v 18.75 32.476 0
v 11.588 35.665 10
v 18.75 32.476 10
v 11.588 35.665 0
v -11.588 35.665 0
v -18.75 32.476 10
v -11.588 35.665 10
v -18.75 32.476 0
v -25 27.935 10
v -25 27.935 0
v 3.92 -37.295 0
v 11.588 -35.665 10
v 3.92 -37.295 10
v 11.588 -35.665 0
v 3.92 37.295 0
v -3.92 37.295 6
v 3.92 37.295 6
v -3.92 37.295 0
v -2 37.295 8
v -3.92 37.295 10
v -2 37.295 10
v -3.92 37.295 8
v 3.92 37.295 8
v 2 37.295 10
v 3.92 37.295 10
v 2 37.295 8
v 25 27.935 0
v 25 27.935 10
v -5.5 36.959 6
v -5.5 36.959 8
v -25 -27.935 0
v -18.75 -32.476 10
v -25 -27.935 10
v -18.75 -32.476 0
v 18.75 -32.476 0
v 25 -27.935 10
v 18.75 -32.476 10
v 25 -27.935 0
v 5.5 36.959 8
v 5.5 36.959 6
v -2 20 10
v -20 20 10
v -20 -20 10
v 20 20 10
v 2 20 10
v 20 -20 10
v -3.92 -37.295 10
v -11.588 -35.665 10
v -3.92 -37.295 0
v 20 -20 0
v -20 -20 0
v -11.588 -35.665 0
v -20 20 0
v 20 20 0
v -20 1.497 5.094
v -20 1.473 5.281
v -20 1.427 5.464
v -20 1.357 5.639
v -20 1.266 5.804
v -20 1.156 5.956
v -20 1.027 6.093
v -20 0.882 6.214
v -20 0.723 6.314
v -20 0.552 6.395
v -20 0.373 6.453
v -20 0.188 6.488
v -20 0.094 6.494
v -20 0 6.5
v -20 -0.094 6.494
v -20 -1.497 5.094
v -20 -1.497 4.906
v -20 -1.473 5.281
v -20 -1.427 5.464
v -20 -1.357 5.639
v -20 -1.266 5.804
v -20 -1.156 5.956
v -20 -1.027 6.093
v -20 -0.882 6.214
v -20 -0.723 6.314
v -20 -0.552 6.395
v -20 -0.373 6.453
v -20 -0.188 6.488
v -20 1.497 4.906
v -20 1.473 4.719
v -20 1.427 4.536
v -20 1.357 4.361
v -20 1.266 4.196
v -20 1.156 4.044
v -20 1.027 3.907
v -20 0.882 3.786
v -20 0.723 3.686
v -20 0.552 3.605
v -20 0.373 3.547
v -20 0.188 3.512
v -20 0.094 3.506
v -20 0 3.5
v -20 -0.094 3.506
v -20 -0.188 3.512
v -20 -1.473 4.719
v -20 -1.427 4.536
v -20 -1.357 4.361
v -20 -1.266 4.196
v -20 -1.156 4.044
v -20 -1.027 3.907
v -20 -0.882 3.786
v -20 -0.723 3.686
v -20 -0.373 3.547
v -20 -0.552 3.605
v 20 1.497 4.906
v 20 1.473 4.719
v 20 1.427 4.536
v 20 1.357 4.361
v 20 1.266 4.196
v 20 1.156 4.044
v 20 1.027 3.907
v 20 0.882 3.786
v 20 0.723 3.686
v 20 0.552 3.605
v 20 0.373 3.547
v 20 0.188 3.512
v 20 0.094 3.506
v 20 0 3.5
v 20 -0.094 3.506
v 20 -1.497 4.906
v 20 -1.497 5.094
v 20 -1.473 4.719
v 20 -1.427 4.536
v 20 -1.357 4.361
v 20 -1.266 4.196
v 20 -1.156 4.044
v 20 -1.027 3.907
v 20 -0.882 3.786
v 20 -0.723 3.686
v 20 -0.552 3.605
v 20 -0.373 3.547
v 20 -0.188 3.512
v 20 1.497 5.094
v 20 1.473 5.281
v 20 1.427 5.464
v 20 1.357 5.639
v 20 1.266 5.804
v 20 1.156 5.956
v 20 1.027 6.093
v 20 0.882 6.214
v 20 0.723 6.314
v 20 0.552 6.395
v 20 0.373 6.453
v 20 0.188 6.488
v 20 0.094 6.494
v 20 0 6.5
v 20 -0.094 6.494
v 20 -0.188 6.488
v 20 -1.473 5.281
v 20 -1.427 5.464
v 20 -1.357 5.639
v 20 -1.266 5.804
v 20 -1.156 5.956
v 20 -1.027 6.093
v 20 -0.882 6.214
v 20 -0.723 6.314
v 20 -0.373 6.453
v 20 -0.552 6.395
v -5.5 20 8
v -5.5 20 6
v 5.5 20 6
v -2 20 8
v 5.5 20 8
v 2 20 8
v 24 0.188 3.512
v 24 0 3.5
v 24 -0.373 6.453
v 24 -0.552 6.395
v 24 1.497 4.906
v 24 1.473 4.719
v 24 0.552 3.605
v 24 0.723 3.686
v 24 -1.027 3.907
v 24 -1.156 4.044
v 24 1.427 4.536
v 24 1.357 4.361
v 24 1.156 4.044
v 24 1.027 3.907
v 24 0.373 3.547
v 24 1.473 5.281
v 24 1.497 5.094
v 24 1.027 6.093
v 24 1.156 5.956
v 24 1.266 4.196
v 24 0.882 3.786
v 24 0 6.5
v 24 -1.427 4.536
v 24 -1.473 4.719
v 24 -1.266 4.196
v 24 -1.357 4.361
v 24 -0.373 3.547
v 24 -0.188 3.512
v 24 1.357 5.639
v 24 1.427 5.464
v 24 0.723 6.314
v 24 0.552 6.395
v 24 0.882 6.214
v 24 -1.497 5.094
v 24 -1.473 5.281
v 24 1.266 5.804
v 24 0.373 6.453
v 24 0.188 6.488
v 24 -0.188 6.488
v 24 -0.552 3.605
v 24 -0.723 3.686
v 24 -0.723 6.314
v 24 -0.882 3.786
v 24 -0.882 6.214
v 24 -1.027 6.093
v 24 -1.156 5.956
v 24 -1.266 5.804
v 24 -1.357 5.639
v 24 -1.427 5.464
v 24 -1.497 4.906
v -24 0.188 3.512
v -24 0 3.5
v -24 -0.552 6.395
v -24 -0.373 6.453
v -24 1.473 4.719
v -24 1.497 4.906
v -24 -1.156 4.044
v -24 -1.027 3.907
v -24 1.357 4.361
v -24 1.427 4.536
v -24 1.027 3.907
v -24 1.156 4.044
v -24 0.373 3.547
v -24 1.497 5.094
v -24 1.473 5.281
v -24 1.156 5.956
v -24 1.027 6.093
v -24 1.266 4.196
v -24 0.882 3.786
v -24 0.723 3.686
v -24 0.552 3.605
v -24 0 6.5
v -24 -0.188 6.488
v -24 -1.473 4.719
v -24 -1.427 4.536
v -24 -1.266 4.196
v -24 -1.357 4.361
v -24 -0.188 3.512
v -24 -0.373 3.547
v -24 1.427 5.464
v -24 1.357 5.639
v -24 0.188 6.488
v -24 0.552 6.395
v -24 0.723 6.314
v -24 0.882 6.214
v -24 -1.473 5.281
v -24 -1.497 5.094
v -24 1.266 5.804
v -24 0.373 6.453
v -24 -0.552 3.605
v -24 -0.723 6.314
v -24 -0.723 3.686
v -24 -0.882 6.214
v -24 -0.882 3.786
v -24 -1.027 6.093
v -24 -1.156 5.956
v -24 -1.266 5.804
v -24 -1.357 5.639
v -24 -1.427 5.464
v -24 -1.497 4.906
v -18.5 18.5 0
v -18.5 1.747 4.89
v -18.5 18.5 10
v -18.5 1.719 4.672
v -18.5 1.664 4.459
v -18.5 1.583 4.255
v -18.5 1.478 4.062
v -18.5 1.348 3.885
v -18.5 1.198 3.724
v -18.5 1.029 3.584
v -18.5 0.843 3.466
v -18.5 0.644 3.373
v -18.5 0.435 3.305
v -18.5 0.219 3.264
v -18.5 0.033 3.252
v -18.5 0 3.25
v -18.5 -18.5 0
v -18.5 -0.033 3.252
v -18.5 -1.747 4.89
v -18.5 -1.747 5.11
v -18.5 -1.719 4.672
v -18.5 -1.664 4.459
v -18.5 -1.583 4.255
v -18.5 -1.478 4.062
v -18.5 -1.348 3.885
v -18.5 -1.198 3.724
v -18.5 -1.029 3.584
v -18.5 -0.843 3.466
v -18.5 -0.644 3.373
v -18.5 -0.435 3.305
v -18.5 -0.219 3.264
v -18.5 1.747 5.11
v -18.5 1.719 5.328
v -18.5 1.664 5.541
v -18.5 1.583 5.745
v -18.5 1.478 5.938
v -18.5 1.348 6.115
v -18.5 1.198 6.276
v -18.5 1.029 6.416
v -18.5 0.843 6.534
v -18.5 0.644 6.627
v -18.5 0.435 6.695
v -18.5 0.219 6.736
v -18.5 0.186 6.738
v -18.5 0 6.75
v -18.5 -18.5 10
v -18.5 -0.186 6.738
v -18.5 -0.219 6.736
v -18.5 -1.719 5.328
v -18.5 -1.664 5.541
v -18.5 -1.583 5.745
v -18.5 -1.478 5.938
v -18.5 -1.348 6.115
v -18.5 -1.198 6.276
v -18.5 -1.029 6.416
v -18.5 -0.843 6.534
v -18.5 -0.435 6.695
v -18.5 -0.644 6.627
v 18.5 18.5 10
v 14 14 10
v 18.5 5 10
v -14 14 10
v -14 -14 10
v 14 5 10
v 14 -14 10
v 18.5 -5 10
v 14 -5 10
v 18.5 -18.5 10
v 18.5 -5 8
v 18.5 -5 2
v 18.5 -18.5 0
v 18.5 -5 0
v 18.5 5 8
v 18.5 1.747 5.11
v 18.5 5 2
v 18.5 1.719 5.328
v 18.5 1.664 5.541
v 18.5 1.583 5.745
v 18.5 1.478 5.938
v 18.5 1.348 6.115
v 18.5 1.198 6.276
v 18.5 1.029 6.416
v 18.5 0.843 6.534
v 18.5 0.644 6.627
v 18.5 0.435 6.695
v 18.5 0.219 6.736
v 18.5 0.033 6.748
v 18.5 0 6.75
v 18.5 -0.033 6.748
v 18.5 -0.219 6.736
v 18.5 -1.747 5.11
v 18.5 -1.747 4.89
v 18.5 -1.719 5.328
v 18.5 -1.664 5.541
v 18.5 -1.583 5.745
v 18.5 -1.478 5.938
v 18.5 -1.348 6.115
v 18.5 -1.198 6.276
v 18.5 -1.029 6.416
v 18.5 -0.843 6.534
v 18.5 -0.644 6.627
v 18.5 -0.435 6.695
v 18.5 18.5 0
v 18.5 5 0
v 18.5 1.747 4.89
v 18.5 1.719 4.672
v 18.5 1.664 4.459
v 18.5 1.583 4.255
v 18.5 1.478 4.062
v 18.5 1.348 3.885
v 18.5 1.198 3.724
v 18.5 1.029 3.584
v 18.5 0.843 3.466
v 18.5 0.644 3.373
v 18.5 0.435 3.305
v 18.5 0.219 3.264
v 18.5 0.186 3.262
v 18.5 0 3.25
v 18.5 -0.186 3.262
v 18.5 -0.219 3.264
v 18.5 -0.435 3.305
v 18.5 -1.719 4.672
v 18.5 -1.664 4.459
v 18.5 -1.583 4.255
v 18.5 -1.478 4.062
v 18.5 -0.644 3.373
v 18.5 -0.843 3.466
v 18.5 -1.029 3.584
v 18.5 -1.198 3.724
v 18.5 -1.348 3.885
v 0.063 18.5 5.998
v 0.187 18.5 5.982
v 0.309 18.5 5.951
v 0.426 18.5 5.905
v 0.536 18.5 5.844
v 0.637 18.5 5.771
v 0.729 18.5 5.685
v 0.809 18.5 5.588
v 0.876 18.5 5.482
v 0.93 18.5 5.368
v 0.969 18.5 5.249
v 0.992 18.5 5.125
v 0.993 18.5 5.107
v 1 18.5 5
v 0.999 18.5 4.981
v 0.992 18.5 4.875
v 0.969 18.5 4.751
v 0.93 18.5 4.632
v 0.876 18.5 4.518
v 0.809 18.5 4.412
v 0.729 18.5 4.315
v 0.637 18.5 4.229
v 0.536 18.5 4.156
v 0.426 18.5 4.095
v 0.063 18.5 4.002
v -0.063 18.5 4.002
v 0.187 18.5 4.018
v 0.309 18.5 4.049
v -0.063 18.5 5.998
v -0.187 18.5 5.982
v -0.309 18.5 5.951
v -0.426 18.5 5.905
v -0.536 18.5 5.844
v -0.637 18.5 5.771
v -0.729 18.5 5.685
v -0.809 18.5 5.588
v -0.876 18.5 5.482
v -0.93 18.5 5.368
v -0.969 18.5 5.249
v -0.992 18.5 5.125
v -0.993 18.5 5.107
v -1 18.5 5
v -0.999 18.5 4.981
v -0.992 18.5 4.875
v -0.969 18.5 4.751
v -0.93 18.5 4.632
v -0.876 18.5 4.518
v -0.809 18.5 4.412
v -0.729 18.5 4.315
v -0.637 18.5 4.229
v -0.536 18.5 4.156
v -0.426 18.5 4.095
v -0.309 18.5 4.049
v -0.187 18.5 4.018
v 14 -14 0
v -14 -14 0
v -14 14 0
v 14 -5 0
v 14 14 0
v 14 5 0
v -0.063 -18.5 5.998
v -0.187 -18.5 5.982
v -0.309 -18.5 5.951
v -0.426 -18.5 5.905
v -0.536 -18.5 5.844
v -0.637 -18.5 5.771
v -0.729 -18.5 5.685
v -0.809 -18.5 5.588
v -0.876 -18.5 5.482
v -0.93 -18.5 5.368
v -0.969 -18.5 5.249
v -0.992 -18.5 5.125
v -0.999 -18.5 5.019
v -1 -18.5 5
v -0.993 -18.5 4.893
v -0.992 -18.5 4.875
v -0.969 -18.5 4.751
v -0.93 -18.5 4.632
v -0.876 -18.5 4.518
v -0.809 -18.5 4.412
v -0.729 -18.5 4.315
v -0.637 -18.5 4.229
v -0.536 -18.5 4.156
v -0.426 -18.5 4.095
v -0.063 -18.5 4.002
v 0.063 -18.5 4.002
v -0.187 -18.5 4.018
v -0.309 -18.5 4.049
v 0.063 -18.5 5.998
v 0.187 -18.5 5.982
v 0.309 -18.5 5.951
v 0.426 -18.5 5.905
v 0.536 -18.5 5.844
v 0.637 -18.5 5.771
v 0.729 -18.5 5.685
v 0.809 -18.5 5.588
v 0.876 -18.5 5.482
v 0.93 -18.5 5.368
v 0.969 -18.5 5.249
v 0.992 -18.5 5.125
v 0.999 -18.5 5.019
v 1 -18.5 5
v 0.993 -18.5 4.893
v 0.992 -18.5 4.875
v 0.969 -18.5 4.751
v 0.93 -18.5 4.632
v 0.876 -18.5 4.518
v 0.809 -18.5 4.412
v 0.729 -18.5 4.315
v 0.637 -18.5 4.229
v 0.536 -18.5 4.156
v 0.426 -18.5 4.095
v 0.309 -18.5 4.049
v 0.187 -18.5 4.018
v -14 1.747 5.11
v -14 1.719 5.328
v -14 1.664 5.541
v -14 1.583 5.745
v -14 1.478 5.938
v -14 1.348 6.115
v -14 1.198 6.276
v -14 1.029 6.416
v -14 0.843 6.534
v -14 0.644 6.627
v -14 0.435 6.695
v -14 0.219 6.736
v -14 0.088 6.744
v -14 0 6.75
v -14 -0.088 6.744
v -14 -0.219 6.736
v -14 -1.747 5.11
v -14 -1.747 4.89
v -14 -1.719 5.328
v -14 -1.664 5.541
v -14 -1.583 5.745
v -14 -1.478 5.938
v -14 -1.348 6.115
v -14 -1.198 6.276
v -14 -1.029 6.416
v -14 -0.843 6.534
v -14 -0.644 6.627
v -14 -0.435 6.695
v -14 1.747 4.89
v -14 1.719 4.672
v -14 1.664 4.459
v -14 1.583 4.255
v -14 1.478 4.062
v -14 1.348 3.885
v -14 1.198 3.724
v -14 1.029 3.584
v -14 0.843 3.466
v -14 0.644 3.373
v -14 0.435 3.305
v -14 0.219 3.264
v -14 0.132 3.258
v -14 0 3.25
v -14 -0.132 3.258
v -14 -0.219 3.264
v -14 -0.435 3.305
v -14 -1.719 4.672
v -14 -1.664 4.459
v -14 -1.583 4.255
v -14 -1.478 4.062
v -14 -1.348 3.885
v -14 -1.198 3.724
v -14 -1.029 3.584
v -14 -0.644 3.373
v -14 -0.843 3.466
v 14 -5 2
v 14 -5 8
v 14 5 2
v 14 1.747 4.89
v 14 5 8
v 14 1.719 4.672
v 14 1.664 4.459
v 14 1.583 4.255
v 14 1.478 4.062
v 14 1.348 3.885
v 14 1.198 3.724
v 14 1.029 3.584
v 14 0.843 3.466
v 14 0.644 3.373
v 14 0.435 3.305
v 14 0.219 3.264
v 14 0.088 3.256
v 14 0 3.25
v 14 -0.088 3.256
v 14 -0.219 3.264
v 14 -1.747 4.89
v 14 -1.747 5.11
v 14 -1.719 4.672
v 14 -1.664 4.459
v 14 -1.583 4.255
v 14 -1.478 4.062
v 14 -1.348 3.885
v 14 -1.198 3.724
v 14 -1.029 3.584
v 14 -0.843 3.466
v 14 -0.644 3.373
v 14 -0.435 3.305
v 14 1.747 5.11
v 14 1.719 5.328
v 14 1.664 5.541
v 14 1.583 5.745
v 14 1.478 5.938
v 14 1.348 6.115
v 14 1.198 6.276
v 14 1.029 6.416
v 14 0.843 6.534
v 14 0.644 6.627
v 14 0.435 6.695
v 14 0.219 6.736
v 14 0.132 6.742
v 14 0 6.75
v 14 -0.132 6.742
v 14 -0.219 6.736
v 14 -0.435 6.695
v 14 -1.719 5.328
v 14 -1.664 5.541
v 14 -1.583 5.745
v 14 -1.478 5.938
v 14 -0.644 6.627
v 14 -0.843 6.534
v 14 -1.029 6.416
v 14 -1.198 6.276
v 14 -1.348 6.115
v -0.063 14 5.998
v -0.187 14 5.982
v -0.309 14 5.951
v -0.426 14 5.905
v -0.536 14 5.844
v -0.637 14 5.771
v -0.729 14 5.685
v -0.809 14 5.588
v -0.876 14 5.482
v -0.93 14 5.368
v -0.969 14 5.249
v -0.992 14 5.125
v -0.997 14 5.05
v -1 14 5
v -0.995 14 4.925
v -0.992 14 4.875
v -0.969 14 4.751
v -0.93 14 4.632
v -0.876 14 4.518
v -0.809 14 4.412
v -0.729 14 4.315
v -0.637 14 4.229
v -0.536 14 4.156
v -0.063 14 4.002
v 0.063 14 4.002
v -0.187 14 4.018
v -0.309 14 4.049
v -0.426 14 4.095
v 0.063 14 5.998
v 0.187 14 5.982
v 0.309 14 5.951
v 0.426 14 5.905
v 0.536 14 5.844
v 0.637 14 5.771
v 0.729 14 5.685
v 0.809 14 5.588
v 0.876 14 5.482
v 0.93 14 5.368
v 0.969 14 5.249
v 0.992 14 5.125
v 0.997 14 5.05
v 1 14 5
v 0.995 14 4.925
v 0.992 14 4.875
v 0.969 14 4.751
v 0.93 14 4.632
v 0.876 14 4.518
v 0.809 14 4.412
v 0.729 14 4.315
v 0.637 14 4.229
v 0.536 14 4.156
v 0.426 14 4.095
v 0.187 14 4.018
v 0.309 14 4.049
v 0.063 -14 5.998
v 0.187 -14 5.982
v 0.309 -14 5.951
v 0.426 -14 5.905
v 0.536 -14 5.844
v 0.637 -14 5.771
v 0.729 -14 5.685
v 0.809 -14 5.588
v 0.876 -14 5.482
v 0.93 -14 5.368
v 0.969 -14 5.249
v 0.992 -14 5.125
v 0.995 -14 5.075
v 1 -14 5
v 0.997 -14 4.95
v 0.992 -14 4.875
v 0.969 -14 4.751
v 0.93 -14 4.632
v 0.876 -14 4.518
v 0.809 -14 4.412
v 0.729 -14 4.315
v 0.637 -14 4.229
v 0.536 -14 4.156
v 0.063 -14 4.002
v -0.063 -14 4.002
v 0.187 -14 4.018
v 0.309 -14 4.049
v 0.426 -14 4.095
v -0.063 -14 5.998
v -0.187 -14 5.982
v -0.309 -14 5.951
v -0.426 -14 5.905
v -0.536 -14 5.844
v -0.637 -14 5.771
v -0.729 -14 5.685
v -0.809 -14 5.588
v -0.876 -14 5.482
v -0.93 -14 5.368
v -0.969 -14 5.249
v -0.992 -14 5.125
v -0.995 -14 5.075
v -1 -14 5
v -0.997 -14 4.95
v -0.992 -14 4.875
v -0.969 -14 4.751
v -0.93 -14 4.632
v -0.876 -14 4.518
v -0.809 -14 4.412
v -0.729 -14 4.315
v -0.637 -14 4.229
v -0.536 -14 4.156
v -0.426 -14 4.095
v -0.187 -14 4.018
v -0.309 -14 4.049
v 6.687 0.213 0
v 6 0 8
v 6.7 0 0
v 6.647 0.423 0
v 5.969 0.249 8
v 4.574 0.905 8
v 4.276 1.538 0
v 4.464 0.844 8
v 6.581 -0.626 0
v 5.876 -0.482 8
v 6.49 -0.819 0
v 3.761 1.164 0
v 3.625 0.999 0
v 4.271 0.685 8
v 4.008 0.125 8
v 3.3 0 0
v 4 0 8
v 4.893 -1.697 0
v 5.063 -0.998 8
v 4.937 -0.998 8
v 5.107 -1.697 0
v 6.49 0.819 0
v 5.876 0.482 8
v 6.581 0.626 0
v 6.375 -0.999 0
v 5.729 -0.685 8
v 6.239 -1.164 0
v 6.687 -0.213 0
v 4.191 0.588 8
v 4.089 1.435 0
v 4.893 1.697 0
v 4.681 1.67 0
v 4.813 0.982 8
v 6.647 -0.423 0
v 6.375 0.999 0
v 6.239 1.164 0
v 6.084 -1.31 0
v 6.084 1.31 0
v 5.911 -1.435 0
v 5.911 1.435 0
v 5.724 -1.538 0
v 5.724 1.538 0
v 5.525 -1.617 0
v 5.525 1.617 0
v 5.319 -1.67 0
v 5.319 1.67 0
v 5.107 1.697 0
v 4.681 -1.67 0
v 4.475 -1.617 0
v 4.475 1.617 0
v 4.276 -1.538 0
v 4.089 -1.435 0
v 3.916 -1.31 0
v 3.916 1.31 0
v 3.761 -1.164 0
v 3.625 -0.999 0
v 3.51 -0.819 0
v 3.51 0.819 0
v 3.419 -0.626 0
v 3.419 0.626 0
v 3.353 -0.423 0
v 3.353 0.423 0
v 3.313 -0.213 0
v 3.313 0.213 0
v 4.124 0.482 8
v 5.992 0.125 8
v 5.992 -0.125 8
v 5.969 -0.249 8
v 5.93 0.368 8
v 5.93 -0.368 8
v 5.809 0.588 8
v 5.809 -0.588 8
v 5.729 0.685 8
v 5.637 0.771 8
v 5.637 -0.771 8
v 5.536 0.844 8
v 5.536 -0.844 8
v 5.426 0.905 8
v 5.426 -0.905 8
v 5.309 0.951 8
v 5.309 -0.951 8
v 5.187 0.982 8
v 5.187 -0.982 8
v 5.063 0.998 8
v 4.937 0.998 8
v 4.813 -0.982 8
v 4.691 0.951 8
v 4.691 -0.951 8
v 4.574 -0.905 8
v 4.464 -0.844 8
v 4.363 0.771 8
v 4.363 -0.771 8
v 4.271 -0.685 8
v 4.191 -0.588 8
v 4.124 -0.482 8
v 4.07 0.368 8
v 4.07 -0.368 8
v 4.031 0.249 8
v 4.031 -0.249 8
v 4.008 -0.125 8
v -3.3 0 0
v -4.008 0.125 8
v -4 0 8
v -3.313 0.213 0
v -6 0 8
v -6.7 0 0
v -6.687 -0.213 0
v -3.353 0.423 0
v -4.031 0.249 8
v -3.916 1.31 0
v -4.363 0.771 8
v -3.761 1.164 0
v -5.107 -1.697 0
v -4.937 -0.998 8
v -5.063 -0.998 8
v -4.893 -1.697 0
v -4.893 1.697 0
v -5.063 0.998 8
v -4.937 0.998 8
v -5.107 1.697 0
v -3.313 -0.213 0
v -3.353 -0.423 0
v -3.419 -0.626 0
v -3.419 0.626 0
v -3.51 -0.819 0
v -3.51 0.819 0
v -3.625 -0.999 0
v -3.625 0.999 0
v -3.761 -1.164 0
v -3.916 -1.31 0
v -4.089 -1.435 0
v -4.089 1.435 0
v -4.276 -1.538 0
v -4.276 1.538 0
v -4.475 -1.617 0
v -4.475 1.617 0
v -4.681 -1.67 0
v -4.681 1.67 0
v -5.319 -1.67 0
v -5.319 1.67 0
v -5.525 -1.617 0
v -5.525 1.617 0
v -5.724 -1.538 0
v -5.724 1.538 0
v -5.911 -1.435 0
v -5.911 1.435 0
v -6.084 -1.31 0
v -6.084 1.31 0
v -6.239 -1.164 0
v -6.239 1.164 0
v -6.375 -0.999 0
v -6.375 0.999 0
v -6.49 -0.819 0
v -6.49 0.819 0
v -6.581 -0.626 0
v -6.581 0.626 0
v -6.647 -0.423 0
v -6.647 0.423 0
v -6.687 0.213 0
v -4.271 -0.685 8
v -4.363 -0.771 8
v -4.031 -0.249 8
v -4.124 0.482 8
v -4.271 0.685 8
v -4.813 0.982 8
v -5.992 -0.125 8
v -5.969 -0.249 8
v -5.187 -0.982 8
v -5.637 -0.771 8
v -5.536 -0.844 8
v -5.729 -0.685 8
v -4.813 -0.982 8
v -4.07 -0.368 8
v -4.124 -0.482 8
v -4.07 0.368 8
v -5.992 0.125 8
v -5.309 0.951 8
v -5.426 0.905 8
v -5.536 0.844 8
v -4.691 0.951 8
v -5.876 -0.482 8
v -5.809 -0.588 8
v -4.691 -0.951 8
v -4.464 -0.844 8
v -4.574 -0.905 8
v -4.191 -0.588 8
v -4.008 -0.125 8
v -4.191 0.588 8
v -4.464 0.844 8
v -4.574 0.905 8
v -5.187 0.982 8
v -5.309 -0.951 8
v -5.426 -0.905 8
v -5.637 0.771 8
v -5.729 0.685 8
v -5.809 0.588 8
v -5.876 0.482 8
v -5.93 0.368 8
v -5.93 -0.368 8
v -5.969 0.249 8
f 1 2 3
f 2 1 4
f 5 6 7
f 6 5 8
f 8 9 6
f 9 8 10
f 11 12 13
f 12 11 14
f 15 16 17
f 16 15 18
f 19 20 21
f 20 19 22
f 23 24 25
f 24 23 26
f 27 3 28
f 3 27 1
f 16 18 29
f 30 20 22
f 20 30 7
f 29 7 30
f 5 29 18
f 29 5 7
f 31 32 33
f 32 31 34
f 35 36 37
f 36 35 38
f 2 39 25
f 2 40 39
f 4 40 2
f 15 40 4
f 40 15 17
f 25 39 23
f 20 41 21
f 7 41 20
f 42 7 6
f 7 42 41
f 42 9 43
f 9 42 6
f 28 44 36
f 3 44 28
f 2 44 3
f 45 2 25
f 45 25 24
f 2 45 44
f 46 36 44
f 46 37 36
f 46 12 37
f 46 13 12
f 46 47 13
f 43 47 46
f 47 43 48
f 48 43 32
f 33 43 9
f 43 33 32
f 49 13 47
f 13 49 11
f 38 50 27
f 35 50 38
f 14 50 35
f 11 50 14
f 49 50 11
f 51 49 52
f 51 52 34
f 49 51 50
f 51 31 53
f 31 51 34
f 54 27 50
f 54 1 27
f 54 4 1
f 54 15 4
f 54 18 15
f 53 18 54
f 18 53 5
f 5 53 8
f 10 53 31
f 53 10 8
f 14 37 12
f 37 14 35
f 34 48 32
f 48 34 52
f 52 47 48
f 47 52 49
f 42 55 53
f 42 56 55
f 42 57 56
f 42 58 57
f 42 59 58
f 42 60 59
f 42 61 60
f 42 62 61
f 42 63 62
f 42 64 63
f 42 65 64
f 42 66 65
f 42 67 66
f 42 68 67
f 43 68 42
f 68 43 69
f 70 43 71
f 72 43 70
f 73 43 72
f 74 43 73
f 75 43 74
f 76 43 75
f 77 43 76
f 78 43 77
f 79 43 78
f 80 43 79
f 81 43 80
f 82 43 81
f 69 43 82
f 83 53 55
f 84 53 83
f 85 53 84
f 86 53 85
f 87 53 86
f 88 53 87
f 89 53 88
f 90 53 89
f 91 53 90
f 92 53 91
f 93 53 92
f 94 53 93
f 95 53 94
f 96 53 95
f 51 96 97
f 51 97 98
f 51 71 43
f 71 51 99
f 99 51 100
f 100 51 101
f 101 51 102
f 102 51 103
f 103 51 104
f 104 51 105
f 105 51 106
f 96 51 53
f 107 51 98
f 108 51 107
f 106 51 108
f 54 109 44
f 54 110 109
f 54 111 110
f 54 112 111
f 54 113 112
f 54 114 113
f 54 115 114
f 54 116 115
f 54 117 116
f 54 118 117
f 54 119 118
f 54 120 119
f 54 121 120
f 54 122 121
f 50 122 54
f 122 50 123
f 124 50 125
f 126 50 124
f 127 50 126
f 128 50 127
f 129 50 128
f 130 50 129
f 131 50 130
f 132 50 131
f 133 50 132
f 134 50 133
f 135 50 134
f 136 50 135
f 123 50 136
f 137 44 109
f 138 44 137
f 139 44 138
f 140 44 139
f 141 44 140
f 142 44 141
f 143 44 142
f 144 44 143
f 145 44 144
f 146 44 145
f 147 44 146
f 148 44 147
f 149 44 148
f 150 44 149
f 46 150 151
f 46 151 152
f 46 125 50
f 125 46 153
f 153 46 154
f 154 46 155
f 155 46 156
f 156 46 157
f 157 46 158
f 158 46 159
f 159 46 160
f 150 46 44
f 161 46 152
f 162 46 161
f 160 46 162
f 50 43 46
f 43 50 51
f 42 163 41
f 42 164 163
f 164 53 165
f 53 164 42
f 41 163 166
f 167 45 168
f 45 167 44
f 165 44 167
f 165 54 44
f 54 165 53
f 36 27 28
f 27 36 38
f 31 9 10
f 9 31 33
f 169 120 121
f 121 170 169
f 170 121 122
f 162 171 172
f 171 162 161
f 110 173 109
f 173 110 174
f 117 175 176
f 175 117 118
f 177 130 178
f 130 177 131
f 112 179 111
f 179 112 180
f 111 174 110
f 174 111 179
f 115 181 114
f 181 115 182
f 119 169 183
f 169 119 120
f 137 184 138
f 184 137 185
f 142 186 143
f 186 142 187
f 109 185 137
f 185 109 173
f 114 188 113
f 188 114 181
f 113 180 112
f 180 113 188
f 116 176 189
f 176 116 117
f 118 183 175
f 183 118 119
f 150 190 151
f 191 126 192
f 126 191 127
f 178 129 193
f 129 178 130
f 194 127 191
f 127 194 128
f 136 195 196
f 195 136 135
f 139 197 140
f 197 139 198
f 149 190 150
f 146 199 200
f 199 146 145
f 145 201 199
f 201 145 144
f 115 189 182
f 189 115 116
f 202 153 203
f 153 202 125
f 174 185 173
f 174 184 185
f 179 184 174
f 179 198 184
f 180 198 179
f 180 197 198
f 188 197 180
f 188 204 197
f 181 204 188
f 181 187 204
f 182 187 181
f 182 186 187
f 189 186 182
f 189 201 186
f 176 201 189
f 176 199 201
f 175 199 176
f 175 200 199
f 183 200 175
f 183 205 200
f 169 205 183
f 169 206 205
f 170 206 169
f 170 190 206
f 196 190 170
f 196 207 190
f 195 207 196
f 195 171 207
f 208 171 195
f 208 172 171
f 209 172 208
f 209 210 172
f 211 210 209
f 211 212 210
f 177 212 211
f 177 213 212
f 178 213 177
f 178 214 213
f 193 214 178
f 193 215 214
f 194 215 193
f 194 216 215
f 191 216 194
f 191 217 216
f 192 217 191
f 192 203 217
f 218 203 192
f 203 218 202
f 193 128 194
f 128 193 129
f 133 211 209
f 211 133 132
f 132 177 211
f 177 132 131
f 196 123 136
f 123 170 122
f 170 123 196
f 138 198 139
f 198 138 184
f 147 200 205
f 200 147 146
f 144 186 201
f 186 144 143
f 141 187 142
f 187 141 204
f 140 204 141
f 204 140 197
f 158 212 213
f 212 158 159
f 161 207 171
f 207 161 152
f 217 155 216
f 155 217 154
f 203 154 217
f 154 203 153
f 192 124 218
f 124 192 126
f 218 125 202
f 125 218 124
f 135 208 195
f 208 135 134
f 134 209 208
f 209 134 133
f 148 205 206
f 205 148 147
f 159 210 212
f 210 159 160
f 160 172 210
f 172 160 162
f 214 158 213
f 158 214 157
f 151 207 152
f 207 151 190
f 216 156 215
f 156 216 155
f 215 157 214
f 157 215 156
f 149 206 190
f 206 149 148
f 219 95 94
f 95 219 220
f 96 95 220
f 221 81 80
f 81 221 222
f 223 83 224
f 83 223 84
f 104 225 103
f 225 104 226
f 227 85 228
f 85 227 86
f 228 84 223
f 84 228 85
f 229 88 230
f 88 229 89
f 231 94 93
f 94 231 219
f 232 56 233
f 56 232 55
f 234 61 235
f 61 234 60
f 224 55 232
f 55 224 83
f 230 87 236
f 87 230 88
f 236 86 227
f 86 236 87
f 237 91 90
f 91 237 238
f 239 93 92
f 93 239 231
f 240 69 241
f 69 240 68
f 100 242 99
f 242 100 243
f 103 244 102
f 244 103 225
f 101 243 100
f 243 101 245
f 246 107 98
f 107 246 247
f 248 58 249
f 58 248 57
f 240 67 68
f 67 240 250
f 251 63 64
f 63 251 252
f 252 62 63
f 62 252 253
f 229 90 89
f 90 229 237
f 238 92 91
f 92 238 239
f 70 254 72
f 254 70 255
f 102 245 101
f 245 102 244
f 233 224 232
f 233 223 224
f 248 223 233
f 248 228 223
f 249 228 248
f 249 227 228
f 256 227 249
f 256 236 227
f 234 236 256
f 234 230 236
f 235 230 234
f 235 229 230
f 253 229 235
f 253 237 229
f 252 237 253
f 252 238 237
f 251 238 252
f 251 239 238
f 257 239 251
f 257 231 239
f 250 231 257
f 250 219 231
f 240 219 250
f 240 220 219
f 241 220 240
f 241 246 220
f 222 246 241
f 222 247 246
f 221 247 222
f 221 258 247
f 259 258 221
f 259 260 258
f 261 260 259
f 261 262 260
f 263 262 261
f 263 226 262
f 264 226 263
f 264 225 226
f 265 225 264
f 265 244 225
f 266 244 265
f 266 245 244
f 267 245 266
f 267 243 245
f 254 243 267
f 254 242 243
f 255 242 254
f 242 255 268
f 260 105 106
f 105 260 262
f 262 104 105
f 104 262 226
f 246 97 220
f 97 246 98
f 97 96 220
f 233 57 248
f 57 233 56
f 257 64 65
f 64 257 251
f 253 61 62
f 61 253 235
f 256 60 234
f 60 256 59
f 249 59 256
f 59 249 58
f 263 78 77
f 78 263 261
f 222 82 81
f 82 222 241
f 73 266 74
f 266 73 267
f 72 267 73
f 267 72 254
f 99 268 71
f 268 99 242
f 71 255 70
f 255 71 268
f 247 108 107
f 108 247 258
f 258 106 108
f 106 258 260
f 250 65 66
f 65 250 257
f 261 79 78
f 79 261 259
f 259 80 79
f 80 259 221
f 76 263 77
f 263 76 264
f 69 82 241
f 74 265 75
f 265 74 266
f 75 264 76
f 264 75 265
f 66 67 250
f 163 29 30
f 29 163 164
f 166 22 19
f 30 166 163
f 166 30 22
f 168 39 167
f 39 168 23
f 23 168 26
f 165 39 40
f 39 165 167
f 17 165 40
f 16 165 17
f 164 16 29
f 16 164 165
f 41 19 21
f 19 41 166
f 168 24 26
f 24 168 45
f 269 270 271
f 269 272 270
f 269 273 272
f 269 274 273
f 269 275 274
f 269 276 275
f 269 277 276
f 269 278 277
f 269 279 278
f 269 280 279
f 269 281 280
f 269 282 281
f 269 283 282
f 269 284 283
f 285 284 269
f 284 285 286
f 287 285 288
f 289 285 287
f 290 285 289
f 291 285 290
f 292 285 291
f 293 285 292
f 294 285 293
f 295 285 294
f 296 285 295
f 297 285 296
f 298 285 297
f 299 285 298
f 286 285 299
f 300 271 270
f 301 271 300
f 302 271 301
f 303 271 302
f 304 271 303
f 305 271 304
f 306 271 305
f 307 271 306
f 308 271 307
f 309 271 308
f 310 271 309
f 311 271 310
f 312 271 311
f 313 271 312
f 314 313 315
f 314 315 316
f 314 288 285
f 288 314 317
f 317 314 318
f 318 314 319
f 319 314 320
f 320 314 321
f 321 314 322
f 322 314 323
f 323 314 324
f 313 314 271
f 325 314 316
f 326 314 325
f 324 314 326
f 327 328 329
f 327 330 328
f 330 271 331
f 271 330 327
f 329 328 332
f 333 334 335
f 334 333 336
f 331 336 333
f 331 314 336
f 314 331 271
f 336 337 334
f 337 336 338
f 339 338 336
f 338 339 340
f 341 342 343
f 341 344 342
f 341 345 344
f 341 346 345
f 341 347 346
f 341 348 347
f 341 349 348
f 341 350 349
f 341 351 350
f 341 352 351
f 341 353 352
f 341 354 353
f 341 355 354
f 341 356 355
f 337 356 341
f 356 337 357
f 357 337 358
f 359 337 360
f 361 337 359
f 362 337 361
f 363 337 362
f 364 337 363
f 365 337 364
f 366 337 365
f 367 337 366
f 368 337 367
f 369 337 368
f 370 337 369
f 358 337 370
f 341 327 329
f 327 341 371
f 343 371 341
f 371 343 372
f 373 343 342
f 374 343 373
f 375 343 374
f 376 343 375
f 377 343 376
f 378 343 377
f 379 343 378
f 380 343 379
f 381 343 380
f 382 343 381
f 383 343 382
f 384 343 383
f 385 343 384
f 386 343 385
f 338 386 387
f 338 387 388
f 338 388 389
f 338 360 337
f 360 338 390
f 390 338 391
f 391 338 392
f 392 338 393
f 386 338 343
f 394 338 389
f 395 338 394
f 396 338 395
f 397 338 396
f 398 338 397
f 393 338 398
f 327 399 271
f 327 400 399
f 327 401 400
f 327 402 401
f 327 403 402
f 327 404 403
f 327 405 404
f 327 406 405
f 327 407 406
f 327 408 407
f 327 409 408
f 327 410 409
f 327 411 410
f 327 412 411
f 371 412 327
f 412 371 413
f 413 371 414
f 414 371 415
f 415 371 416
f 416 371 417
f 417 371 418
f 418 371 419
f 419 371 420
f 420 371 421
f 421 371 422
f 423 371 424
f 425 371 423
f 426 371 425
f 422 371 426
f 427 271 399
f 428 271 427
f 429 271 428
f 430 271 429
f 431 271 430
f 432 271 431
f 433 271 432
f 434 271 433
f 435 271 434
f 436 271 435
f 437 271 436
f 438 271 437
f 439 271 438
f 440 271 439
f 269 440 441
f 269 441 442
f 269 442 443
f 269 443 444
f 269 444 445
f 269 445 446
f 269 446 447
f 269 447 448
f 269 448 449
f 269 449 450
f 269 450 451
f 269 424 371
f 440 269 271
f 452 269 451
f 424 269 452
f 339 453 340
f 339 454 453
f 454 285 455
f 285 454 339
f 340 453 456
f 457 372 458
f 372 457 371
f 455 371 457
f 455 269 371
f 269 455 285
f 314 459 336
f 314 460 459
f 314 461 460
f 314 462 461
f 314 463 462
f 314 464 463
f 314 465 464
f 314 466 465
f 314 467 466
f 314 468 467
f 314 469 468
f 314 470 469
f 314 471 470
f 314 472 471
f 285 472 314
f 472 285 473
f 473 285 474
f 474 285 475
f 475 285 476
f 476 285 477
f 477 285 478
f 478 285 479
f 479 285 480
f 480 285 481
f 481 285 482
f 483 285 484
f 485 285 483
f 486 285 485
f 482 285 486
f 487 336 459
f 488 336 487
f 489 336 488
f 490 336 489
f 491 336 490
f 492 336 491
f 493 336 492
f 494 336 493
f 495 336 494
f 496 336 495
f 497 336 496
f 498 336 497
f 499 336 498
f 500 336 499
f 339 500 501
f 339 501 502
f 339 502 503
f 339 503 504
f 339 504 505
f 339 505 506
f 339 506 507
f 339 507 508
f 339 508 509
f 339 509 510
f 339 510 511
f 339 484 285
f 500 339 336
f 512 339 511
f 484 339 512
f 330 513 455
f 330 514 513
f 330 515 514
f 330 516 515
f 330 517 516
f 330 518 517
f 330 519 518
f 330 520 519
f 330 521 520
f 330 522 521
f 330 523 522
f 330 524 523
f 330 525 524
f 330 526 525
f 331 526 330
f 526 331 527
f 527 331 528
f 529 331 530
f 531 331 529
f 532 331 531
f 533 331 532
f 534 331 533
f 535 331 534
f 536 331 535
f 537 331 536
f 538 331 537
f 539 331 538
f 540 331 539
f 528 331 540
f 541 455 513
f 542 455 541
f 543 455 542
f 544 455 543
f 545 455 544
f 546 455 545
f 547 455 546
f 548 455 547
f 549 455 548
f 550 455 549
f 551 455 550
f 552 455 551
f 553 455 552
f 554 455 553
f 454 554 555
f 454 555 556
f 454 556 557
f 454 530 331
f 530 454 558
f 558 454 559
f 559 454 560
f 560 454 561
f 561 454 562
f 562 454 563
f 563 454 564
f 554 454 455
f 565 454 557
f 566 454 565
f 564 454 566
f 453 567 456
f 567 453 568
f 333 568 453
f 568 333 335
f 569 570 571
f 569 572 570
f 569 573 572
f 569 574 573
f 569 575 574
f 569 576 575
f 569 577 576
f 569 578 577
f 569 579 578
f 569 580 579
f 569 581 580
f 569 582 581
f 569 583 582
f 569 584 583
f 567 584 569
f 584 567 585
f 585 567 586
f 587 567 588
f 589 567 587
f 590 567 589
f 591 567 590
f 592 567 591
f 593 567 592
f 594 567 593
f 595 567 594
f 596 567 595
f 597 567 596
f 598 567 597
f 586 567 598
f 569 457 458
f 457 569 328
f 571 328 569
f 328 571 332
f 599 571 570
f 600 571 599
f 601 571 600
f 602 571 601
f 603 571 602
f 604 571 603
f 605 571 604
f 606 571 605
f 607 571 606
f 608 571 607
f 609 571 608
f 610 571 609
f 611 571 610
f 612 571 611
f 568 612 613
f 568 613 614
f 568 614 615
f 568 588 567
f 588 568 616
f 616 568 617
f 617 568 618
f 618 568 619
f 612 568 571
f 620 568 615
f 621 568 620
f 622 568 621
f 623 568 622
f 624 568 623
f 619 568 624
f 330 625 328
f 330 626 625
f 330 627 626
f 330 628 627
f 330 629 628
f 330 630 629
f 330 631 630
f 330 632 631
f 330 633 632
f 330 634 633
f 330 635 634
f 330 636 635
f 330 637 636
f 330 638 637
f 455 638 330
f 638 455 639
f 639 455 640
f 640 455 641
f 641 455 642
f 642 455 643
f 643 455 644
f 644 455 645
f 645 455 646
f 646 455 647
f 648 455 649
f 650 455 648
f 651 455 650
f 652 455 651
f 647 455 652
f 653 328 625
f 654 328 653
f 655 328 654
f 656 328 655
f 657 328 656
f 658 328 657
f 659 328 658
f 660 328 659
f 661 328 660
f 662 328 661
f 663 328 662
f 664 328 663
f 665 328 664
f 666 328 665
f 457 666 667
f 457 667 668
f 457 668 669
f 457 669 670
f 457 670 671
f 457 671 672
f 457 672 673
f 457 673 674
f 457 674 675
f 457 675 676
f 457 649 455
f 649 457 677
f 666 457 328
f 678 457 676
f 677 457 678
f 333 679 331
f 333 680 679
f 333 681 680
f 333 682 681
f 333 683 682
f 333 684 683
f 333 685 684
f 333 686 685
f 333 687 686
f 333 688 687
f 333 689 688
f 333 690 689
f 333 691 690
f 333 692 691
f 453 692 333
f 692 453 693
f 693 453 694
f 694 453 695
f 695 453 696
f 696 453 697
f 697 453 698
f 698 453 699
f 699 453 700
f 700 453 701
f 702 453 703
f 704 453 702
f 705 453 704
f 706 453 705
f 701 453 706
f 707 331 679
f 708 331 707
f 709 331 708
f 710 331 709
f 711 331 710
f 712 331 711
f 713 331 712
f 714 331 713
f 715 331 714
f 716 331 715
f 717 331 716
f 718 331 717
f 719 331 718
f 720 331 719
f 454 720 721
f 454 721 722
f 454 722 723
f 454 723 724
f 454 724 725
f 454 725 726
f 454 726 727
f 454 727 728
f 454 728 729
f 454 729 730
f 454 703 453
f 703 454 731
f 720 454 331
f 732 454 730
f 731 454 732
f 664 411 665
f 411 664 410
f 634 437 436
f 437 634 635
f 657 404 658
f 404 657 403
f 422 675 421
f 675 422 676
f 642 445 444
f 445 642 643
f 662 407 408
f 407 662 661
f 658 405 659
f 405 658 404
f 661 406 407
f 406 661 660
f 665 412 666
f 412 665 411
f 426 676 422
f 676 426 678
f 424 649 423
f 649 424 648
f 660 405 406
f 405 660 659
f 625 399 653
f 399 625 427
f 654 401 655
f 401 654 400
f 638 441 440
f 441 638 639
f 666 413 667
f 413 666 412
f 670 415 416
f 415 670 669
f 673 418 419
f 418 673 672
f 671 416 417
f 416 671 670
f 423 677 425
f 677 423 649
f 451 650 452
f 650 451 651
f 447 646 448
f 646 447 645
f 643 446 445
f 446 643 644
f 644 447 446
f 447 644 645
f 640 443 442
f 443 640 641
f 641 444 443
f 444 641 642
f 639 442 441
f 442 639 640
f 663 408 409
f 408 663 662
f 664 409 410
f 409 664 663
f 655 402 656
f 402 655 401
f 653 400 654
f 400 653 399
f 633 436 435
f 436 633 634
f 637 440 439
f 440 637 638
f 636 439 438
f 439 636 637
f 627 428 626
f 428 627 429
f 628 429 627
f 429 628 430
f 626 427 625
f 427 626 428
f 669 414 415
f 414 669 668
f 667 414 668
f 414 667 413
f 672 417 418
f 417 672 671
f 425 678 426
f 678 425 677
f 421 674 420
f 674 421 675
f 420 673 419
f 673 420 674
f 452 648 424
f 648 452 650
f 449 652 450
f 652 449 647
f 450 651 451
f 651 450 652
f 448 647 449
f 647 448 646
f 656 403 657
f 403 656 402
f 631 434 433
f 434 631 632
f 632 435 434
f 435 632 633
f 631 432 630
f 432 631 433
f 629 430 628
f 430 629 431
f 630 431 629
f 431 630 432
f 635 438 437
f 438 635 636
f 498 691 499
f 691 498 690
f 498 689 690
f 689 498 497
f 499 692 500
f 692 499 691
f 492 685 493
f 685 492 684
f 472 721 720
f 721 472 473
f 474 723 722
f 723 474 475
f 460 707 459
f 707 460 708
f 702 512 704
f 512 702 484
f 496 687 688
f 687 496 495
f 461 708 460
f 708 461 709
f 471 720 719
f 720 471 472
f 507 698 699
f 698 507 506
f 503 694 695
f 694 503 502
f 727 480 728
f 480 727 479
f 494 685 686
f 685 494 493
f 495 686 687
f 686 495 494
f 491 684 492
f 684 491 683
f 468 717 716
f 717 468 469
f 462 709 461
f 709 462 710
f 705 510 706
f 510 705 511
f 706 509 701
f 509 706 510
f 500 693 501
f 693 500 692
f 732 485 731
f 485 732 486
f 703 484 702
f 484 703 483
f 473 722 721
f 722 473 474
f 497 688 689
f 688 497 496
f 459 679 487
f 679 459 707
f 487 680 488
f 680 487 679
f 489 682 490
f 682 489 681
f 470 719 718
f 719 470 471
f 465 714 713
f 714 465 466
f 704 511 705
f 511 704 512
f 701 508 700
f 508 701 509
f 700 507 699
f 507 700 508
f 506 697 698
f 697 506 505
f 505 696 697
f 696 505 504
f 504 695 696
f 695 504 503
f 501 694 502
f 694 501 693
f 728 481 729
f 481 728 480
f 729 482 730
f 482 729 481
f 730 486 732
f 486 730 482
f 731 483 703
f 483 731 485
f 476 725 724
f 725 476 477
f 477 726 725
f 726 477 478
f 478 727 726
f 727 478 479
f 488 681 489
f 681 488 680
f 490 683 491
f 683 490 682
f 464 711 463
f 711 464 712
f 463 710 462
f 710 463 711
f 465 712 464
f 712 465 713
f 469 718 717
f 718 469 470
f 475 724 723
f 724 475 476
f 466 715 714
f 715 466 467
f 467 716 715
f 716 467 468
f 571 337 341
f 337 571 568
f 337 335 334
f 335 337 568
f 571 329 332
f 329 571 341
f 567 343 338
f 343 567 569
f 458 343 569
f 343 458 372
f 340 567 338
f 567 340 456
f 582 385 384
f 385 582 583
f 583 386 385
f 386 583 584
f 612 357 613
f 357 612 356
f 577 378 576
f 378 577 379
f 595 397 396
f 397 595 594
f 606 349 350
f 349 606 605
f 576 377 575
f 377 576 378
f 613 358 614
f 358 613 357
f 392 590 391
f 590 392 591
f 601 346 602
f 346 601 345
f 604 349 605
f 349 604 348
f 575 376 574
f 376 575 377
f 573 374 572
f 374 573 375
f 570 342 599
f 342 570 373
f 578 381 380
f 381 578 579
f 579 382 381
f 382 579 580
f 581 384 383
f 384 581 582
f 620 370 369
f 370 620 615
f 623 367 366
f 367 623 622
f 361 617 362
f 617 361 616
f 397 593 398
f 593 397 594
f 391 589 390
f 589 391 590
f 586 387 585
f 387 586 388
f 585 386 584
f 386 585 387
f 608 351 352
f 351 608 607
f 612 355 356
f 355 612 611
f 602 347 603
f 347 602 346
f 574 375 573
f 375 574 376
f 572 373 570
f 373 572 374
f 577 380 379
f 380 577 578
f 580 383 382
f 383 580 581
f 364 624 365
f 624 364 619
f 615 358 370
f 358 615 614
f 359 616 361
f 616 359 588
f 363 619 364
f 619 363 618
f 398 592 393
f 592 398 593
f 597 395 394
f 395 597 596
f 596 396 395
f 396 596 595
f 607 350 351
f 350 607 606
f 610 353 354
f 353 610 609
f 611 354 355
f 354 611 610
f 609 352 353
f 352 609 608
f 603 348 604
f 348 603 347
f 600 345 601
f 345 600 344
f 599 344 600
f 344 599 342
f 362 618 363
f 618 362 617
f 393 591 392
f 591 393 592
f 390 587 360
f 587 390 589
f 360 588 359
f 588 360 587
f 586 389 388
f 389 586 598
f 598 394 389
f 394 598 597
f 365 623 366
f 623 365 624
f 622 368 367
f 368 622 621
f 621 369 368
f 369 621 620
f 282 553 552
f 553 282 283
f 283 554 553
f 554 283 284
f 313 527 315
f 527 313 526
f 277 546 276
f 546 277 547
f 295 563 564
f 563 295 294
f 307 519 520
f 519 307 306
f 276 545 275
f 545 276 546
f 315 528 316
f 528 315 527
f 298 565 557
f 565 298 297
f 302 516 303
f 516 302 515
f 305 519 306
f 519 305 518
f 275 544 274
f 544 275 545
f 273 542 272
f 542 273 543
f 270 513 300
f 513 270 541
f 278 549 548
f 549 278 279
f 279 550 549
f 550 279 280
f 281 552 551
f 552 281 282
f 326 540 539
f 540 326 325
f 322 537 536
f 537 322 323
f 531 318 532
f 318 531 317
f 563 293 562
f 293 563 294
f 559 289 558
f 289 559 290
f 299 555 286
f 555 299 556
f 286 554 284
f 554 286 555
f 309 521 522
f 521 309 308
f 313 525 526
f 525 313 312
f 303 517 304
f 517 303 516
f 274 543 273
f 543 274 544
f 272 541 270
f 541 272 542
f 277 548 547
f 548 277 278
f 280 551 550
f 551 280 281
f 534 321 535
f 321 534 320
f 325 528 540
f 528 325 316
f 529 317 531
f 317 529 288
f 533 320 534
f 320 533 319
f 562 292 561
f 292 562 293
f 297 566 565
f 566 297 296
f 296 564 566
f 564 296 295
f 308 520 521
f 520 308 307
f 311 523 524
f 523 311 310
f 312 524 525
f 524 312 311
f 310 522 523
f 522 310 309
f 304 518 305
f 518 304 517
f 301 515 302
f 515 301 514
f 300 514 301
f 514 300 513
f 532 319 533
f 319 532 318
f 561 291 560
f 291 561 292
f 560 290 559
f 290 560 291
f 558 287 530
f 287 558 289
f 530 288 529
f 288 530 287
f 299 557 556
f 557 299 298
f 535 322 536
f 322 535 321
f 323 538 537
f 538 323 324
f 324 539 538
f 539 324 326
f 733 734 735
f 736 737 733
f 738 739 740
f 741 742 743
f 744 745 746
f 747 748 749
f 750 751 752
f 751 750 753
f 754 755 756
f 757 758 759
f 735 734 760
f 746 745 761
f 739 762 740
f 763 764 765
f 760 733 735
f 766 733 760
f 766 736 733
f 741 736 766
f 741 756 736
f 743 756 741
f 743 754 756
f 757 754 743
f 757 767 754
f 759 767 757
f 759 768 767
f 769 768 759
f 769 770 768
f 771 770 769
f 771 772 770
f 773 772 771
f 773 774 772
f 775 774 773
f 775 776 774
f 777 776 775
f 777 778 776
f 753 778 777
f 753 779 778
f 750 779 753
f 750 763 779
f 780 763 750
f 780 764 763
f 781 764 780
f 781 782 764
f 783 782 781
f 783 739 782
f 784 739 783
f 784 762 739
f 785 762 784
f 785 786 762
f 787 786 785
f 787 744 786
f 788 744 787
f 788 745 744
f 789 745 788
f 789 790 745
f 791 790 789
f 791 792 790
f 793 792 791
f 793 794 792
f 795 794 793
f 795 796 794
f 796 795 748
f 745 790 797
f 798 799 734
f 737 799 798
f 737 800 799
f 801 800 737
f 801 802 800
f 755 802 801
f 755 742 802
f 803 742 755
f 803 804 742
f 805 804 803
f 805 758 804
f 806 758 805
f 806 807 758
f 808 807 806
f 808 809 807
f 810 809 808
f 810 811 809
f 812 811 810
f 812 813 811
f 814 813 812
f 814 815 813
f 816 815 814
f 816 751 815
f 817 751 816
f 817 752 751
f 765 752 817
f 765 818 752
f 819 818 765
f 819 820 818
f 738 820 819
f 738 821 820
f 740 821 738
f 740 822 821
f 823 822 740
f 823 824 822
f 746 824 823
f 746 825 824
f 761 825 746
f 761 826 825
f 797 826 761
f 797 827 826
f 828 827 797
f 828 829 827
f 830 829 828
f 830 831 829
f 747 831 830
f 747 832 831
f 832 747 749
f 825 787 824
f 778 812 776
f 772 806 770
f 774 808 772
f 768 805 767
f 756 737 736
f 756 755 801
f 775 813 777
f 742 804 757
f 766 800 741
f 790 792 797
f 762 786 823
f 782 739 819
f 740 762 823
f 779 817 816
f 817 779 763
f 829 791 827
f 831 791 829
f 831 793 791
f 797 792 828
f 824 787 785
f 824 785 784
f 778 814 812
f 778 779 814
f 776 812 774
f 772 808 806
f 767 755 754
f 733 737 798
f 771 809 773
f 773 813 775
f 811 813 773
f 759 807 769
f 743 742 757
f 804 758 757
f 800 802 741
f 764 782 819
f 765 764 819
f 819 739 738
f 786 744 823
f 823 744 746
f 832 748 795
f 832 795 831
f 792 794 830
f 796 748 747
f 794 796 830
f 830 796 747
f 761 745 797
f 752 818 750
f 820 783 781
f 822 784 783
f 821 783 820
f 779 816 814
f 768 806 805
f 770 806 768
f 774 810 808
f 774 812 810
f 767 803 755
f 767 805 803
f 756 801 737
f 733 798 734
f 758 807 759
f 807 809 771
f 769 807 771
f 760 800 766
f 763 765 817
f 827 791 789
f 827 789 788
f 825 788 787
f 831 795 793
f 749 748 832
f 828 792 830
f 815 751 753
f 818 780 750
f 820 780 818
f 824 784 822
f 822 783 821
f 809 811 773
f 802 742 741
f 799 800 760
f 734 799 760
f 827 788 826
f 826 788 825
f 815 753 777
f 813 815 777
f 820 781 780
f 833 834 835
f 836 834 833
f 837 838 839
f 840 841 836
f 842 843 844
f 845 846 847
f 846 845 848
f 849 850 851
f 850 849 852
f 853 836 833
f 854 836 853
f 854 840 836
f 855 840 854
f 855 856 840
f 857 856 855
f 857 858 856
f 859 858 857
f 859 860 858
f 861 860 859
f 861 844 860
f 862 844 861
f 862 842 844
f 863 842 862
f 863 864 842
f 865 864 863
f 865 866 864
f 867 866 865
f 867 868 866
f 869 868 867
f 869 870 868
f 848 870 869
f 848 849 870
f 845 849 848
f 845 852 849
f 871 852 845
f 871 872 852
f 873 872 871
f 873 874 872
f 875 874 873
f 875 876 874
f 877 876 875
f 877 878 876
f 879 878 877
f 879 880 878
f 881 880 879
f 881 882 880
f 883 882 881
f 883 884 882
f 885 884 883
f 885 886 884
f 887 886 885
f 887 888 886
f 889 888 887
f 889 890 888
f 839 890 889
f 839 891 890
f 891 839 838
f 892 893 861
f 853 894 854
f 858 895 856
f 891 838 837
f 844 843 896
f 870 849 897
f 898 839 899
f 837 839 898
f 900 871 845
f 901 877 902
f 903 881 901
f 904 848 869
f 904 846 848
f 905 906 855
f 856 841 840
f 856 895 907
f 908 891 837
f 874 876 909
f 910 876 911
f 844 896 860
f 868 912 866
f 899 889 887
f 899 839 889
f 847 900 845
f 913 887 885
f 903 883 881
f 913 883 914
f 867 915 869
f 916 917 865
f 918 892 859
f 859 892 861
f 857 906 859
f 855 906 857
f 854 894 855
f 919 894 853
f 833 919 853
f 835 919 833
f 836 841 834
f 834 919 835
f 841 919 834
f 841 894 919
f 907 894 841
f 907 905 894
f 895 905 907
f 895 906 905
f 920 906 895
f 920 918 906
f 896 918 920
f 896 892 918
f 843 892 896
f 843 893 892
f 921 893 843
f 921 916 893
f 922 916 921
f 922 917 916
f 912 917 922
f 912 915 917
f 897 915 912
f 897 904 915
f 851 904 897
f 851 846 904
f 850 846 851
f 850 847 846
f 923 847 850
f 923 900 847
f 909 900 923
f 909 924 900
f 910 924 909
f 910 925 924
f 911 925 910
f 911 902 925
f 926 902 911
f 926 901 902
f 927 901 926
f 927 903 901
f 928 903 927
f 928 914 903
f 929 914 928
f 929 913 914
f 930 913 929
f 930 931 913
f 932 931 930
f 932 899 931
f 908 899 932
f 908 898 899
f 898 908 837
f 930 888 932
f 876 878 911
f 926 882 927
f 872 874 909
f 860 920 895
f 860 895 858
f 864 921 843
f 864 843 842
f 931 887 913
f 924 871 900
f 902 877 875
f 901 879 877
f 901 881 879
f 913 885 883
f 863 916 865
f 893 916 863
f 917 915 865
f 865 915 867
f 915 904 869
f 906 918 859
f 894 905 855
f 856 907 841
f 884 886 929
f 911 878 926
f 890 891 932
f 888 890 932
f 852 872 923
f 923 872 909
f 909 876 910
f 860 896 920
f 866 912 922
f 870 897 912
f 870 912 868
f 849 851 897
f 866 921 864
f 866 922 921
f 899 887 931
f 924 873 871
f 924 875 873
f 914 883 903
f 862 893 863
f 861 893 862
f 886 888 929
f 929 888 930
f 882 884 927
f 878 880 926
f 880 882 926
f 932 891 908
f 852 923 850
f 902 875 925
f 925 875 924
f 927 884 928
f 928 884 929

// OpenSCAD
module CreateRectangleDonut(innerD, thickness, height, cent=true){
    difference(){
        cube([innerD+thickness, innerD+thickness, height], center=cent);
        if(cent==true){
            cube([innerD, innerD, height*1.1], center=cent);
        }else{
            translate([thickness/2, thickness/2,-0.1])
            cube([innerD, innerD, height*1.1], center=cent);
        }
    }
}


// Create main outer frame
difference(){
    cylinder(d=75, h=10);
    
    // Big cutout for main gyros
    cube([40,40, 30], center=true);
    
    // Side cutouts to make 2 sides flat for no reason
    translate([25, -40, -1])
        cube([50,100,20]);
    translate([-50, -40, -1])
        cube([25,100,20]);
    
    // Hole cutouts for pegs that allow inner gyros to spin
    translate([20,0,5]) rotate([0,90,0])
        cylinder(d=3, h=8, center=true, $fn=50);
    translate([-20,0,5]) rotate([0,90,0])
        cylinder(d=3, h=8, center=true, $fn=50);
    
    translate([-5.5, 19.9, 6]) cube([11, 40, 2]);
    translate([-2, 19.9, 6]) cube([4, 40, 10]);
    
}

//translate([-5,20,49]) rotate([-90,0,0]) import("./YServoMount.stl");

// Inner Y Gyro
difference(){
    // Main part of gyro
    translate([-18.5,-18.5,0])
    CreateRectangleDonut(28, 9, 10, false);
    
    // Holes for pegs or screws to hold inner gyro in
    translate([0,15,5]) rotate([90,0,0])
    cylinder(d=2, h=10, center=true, $fn=50);
    
    translate([0,-15,5]) rotate([90,0,0])
    cylinder(d=2, h=10, center=true, $fn=50);
    
    // Two cube cutouts to hold the extentions for gyroing
    translate([13,-5,8])
    cube([7, 10, 30]);
    
    translate([13,-5,-5])
    cube([7, 10, 7]);
    
    // Pegs which connect the Y gyro to the outer frame and allows it to spin
    translate([15,0,5]) rotate([0,90,0])
        cylinder(d=3.5, h=10, center=true, $fn=50);
    translate([-15,0,5]) rotate([0,90,0])
        cylinder(d=3.5, h=10, center=true, $fn=50);
}

// Pegs which connect the Y gyro to the outer frame and allows it to spin
translate([5,0,4]) rotate([0,0,0])
    cylinder(d1=3.4, d2=2, h=8, center=true, $fn=50);
translate([-5,0,4]) rotate([0,0,0])
    cylinder(d1=3.4, d2=2, h=8, center=true, $fn=50);
